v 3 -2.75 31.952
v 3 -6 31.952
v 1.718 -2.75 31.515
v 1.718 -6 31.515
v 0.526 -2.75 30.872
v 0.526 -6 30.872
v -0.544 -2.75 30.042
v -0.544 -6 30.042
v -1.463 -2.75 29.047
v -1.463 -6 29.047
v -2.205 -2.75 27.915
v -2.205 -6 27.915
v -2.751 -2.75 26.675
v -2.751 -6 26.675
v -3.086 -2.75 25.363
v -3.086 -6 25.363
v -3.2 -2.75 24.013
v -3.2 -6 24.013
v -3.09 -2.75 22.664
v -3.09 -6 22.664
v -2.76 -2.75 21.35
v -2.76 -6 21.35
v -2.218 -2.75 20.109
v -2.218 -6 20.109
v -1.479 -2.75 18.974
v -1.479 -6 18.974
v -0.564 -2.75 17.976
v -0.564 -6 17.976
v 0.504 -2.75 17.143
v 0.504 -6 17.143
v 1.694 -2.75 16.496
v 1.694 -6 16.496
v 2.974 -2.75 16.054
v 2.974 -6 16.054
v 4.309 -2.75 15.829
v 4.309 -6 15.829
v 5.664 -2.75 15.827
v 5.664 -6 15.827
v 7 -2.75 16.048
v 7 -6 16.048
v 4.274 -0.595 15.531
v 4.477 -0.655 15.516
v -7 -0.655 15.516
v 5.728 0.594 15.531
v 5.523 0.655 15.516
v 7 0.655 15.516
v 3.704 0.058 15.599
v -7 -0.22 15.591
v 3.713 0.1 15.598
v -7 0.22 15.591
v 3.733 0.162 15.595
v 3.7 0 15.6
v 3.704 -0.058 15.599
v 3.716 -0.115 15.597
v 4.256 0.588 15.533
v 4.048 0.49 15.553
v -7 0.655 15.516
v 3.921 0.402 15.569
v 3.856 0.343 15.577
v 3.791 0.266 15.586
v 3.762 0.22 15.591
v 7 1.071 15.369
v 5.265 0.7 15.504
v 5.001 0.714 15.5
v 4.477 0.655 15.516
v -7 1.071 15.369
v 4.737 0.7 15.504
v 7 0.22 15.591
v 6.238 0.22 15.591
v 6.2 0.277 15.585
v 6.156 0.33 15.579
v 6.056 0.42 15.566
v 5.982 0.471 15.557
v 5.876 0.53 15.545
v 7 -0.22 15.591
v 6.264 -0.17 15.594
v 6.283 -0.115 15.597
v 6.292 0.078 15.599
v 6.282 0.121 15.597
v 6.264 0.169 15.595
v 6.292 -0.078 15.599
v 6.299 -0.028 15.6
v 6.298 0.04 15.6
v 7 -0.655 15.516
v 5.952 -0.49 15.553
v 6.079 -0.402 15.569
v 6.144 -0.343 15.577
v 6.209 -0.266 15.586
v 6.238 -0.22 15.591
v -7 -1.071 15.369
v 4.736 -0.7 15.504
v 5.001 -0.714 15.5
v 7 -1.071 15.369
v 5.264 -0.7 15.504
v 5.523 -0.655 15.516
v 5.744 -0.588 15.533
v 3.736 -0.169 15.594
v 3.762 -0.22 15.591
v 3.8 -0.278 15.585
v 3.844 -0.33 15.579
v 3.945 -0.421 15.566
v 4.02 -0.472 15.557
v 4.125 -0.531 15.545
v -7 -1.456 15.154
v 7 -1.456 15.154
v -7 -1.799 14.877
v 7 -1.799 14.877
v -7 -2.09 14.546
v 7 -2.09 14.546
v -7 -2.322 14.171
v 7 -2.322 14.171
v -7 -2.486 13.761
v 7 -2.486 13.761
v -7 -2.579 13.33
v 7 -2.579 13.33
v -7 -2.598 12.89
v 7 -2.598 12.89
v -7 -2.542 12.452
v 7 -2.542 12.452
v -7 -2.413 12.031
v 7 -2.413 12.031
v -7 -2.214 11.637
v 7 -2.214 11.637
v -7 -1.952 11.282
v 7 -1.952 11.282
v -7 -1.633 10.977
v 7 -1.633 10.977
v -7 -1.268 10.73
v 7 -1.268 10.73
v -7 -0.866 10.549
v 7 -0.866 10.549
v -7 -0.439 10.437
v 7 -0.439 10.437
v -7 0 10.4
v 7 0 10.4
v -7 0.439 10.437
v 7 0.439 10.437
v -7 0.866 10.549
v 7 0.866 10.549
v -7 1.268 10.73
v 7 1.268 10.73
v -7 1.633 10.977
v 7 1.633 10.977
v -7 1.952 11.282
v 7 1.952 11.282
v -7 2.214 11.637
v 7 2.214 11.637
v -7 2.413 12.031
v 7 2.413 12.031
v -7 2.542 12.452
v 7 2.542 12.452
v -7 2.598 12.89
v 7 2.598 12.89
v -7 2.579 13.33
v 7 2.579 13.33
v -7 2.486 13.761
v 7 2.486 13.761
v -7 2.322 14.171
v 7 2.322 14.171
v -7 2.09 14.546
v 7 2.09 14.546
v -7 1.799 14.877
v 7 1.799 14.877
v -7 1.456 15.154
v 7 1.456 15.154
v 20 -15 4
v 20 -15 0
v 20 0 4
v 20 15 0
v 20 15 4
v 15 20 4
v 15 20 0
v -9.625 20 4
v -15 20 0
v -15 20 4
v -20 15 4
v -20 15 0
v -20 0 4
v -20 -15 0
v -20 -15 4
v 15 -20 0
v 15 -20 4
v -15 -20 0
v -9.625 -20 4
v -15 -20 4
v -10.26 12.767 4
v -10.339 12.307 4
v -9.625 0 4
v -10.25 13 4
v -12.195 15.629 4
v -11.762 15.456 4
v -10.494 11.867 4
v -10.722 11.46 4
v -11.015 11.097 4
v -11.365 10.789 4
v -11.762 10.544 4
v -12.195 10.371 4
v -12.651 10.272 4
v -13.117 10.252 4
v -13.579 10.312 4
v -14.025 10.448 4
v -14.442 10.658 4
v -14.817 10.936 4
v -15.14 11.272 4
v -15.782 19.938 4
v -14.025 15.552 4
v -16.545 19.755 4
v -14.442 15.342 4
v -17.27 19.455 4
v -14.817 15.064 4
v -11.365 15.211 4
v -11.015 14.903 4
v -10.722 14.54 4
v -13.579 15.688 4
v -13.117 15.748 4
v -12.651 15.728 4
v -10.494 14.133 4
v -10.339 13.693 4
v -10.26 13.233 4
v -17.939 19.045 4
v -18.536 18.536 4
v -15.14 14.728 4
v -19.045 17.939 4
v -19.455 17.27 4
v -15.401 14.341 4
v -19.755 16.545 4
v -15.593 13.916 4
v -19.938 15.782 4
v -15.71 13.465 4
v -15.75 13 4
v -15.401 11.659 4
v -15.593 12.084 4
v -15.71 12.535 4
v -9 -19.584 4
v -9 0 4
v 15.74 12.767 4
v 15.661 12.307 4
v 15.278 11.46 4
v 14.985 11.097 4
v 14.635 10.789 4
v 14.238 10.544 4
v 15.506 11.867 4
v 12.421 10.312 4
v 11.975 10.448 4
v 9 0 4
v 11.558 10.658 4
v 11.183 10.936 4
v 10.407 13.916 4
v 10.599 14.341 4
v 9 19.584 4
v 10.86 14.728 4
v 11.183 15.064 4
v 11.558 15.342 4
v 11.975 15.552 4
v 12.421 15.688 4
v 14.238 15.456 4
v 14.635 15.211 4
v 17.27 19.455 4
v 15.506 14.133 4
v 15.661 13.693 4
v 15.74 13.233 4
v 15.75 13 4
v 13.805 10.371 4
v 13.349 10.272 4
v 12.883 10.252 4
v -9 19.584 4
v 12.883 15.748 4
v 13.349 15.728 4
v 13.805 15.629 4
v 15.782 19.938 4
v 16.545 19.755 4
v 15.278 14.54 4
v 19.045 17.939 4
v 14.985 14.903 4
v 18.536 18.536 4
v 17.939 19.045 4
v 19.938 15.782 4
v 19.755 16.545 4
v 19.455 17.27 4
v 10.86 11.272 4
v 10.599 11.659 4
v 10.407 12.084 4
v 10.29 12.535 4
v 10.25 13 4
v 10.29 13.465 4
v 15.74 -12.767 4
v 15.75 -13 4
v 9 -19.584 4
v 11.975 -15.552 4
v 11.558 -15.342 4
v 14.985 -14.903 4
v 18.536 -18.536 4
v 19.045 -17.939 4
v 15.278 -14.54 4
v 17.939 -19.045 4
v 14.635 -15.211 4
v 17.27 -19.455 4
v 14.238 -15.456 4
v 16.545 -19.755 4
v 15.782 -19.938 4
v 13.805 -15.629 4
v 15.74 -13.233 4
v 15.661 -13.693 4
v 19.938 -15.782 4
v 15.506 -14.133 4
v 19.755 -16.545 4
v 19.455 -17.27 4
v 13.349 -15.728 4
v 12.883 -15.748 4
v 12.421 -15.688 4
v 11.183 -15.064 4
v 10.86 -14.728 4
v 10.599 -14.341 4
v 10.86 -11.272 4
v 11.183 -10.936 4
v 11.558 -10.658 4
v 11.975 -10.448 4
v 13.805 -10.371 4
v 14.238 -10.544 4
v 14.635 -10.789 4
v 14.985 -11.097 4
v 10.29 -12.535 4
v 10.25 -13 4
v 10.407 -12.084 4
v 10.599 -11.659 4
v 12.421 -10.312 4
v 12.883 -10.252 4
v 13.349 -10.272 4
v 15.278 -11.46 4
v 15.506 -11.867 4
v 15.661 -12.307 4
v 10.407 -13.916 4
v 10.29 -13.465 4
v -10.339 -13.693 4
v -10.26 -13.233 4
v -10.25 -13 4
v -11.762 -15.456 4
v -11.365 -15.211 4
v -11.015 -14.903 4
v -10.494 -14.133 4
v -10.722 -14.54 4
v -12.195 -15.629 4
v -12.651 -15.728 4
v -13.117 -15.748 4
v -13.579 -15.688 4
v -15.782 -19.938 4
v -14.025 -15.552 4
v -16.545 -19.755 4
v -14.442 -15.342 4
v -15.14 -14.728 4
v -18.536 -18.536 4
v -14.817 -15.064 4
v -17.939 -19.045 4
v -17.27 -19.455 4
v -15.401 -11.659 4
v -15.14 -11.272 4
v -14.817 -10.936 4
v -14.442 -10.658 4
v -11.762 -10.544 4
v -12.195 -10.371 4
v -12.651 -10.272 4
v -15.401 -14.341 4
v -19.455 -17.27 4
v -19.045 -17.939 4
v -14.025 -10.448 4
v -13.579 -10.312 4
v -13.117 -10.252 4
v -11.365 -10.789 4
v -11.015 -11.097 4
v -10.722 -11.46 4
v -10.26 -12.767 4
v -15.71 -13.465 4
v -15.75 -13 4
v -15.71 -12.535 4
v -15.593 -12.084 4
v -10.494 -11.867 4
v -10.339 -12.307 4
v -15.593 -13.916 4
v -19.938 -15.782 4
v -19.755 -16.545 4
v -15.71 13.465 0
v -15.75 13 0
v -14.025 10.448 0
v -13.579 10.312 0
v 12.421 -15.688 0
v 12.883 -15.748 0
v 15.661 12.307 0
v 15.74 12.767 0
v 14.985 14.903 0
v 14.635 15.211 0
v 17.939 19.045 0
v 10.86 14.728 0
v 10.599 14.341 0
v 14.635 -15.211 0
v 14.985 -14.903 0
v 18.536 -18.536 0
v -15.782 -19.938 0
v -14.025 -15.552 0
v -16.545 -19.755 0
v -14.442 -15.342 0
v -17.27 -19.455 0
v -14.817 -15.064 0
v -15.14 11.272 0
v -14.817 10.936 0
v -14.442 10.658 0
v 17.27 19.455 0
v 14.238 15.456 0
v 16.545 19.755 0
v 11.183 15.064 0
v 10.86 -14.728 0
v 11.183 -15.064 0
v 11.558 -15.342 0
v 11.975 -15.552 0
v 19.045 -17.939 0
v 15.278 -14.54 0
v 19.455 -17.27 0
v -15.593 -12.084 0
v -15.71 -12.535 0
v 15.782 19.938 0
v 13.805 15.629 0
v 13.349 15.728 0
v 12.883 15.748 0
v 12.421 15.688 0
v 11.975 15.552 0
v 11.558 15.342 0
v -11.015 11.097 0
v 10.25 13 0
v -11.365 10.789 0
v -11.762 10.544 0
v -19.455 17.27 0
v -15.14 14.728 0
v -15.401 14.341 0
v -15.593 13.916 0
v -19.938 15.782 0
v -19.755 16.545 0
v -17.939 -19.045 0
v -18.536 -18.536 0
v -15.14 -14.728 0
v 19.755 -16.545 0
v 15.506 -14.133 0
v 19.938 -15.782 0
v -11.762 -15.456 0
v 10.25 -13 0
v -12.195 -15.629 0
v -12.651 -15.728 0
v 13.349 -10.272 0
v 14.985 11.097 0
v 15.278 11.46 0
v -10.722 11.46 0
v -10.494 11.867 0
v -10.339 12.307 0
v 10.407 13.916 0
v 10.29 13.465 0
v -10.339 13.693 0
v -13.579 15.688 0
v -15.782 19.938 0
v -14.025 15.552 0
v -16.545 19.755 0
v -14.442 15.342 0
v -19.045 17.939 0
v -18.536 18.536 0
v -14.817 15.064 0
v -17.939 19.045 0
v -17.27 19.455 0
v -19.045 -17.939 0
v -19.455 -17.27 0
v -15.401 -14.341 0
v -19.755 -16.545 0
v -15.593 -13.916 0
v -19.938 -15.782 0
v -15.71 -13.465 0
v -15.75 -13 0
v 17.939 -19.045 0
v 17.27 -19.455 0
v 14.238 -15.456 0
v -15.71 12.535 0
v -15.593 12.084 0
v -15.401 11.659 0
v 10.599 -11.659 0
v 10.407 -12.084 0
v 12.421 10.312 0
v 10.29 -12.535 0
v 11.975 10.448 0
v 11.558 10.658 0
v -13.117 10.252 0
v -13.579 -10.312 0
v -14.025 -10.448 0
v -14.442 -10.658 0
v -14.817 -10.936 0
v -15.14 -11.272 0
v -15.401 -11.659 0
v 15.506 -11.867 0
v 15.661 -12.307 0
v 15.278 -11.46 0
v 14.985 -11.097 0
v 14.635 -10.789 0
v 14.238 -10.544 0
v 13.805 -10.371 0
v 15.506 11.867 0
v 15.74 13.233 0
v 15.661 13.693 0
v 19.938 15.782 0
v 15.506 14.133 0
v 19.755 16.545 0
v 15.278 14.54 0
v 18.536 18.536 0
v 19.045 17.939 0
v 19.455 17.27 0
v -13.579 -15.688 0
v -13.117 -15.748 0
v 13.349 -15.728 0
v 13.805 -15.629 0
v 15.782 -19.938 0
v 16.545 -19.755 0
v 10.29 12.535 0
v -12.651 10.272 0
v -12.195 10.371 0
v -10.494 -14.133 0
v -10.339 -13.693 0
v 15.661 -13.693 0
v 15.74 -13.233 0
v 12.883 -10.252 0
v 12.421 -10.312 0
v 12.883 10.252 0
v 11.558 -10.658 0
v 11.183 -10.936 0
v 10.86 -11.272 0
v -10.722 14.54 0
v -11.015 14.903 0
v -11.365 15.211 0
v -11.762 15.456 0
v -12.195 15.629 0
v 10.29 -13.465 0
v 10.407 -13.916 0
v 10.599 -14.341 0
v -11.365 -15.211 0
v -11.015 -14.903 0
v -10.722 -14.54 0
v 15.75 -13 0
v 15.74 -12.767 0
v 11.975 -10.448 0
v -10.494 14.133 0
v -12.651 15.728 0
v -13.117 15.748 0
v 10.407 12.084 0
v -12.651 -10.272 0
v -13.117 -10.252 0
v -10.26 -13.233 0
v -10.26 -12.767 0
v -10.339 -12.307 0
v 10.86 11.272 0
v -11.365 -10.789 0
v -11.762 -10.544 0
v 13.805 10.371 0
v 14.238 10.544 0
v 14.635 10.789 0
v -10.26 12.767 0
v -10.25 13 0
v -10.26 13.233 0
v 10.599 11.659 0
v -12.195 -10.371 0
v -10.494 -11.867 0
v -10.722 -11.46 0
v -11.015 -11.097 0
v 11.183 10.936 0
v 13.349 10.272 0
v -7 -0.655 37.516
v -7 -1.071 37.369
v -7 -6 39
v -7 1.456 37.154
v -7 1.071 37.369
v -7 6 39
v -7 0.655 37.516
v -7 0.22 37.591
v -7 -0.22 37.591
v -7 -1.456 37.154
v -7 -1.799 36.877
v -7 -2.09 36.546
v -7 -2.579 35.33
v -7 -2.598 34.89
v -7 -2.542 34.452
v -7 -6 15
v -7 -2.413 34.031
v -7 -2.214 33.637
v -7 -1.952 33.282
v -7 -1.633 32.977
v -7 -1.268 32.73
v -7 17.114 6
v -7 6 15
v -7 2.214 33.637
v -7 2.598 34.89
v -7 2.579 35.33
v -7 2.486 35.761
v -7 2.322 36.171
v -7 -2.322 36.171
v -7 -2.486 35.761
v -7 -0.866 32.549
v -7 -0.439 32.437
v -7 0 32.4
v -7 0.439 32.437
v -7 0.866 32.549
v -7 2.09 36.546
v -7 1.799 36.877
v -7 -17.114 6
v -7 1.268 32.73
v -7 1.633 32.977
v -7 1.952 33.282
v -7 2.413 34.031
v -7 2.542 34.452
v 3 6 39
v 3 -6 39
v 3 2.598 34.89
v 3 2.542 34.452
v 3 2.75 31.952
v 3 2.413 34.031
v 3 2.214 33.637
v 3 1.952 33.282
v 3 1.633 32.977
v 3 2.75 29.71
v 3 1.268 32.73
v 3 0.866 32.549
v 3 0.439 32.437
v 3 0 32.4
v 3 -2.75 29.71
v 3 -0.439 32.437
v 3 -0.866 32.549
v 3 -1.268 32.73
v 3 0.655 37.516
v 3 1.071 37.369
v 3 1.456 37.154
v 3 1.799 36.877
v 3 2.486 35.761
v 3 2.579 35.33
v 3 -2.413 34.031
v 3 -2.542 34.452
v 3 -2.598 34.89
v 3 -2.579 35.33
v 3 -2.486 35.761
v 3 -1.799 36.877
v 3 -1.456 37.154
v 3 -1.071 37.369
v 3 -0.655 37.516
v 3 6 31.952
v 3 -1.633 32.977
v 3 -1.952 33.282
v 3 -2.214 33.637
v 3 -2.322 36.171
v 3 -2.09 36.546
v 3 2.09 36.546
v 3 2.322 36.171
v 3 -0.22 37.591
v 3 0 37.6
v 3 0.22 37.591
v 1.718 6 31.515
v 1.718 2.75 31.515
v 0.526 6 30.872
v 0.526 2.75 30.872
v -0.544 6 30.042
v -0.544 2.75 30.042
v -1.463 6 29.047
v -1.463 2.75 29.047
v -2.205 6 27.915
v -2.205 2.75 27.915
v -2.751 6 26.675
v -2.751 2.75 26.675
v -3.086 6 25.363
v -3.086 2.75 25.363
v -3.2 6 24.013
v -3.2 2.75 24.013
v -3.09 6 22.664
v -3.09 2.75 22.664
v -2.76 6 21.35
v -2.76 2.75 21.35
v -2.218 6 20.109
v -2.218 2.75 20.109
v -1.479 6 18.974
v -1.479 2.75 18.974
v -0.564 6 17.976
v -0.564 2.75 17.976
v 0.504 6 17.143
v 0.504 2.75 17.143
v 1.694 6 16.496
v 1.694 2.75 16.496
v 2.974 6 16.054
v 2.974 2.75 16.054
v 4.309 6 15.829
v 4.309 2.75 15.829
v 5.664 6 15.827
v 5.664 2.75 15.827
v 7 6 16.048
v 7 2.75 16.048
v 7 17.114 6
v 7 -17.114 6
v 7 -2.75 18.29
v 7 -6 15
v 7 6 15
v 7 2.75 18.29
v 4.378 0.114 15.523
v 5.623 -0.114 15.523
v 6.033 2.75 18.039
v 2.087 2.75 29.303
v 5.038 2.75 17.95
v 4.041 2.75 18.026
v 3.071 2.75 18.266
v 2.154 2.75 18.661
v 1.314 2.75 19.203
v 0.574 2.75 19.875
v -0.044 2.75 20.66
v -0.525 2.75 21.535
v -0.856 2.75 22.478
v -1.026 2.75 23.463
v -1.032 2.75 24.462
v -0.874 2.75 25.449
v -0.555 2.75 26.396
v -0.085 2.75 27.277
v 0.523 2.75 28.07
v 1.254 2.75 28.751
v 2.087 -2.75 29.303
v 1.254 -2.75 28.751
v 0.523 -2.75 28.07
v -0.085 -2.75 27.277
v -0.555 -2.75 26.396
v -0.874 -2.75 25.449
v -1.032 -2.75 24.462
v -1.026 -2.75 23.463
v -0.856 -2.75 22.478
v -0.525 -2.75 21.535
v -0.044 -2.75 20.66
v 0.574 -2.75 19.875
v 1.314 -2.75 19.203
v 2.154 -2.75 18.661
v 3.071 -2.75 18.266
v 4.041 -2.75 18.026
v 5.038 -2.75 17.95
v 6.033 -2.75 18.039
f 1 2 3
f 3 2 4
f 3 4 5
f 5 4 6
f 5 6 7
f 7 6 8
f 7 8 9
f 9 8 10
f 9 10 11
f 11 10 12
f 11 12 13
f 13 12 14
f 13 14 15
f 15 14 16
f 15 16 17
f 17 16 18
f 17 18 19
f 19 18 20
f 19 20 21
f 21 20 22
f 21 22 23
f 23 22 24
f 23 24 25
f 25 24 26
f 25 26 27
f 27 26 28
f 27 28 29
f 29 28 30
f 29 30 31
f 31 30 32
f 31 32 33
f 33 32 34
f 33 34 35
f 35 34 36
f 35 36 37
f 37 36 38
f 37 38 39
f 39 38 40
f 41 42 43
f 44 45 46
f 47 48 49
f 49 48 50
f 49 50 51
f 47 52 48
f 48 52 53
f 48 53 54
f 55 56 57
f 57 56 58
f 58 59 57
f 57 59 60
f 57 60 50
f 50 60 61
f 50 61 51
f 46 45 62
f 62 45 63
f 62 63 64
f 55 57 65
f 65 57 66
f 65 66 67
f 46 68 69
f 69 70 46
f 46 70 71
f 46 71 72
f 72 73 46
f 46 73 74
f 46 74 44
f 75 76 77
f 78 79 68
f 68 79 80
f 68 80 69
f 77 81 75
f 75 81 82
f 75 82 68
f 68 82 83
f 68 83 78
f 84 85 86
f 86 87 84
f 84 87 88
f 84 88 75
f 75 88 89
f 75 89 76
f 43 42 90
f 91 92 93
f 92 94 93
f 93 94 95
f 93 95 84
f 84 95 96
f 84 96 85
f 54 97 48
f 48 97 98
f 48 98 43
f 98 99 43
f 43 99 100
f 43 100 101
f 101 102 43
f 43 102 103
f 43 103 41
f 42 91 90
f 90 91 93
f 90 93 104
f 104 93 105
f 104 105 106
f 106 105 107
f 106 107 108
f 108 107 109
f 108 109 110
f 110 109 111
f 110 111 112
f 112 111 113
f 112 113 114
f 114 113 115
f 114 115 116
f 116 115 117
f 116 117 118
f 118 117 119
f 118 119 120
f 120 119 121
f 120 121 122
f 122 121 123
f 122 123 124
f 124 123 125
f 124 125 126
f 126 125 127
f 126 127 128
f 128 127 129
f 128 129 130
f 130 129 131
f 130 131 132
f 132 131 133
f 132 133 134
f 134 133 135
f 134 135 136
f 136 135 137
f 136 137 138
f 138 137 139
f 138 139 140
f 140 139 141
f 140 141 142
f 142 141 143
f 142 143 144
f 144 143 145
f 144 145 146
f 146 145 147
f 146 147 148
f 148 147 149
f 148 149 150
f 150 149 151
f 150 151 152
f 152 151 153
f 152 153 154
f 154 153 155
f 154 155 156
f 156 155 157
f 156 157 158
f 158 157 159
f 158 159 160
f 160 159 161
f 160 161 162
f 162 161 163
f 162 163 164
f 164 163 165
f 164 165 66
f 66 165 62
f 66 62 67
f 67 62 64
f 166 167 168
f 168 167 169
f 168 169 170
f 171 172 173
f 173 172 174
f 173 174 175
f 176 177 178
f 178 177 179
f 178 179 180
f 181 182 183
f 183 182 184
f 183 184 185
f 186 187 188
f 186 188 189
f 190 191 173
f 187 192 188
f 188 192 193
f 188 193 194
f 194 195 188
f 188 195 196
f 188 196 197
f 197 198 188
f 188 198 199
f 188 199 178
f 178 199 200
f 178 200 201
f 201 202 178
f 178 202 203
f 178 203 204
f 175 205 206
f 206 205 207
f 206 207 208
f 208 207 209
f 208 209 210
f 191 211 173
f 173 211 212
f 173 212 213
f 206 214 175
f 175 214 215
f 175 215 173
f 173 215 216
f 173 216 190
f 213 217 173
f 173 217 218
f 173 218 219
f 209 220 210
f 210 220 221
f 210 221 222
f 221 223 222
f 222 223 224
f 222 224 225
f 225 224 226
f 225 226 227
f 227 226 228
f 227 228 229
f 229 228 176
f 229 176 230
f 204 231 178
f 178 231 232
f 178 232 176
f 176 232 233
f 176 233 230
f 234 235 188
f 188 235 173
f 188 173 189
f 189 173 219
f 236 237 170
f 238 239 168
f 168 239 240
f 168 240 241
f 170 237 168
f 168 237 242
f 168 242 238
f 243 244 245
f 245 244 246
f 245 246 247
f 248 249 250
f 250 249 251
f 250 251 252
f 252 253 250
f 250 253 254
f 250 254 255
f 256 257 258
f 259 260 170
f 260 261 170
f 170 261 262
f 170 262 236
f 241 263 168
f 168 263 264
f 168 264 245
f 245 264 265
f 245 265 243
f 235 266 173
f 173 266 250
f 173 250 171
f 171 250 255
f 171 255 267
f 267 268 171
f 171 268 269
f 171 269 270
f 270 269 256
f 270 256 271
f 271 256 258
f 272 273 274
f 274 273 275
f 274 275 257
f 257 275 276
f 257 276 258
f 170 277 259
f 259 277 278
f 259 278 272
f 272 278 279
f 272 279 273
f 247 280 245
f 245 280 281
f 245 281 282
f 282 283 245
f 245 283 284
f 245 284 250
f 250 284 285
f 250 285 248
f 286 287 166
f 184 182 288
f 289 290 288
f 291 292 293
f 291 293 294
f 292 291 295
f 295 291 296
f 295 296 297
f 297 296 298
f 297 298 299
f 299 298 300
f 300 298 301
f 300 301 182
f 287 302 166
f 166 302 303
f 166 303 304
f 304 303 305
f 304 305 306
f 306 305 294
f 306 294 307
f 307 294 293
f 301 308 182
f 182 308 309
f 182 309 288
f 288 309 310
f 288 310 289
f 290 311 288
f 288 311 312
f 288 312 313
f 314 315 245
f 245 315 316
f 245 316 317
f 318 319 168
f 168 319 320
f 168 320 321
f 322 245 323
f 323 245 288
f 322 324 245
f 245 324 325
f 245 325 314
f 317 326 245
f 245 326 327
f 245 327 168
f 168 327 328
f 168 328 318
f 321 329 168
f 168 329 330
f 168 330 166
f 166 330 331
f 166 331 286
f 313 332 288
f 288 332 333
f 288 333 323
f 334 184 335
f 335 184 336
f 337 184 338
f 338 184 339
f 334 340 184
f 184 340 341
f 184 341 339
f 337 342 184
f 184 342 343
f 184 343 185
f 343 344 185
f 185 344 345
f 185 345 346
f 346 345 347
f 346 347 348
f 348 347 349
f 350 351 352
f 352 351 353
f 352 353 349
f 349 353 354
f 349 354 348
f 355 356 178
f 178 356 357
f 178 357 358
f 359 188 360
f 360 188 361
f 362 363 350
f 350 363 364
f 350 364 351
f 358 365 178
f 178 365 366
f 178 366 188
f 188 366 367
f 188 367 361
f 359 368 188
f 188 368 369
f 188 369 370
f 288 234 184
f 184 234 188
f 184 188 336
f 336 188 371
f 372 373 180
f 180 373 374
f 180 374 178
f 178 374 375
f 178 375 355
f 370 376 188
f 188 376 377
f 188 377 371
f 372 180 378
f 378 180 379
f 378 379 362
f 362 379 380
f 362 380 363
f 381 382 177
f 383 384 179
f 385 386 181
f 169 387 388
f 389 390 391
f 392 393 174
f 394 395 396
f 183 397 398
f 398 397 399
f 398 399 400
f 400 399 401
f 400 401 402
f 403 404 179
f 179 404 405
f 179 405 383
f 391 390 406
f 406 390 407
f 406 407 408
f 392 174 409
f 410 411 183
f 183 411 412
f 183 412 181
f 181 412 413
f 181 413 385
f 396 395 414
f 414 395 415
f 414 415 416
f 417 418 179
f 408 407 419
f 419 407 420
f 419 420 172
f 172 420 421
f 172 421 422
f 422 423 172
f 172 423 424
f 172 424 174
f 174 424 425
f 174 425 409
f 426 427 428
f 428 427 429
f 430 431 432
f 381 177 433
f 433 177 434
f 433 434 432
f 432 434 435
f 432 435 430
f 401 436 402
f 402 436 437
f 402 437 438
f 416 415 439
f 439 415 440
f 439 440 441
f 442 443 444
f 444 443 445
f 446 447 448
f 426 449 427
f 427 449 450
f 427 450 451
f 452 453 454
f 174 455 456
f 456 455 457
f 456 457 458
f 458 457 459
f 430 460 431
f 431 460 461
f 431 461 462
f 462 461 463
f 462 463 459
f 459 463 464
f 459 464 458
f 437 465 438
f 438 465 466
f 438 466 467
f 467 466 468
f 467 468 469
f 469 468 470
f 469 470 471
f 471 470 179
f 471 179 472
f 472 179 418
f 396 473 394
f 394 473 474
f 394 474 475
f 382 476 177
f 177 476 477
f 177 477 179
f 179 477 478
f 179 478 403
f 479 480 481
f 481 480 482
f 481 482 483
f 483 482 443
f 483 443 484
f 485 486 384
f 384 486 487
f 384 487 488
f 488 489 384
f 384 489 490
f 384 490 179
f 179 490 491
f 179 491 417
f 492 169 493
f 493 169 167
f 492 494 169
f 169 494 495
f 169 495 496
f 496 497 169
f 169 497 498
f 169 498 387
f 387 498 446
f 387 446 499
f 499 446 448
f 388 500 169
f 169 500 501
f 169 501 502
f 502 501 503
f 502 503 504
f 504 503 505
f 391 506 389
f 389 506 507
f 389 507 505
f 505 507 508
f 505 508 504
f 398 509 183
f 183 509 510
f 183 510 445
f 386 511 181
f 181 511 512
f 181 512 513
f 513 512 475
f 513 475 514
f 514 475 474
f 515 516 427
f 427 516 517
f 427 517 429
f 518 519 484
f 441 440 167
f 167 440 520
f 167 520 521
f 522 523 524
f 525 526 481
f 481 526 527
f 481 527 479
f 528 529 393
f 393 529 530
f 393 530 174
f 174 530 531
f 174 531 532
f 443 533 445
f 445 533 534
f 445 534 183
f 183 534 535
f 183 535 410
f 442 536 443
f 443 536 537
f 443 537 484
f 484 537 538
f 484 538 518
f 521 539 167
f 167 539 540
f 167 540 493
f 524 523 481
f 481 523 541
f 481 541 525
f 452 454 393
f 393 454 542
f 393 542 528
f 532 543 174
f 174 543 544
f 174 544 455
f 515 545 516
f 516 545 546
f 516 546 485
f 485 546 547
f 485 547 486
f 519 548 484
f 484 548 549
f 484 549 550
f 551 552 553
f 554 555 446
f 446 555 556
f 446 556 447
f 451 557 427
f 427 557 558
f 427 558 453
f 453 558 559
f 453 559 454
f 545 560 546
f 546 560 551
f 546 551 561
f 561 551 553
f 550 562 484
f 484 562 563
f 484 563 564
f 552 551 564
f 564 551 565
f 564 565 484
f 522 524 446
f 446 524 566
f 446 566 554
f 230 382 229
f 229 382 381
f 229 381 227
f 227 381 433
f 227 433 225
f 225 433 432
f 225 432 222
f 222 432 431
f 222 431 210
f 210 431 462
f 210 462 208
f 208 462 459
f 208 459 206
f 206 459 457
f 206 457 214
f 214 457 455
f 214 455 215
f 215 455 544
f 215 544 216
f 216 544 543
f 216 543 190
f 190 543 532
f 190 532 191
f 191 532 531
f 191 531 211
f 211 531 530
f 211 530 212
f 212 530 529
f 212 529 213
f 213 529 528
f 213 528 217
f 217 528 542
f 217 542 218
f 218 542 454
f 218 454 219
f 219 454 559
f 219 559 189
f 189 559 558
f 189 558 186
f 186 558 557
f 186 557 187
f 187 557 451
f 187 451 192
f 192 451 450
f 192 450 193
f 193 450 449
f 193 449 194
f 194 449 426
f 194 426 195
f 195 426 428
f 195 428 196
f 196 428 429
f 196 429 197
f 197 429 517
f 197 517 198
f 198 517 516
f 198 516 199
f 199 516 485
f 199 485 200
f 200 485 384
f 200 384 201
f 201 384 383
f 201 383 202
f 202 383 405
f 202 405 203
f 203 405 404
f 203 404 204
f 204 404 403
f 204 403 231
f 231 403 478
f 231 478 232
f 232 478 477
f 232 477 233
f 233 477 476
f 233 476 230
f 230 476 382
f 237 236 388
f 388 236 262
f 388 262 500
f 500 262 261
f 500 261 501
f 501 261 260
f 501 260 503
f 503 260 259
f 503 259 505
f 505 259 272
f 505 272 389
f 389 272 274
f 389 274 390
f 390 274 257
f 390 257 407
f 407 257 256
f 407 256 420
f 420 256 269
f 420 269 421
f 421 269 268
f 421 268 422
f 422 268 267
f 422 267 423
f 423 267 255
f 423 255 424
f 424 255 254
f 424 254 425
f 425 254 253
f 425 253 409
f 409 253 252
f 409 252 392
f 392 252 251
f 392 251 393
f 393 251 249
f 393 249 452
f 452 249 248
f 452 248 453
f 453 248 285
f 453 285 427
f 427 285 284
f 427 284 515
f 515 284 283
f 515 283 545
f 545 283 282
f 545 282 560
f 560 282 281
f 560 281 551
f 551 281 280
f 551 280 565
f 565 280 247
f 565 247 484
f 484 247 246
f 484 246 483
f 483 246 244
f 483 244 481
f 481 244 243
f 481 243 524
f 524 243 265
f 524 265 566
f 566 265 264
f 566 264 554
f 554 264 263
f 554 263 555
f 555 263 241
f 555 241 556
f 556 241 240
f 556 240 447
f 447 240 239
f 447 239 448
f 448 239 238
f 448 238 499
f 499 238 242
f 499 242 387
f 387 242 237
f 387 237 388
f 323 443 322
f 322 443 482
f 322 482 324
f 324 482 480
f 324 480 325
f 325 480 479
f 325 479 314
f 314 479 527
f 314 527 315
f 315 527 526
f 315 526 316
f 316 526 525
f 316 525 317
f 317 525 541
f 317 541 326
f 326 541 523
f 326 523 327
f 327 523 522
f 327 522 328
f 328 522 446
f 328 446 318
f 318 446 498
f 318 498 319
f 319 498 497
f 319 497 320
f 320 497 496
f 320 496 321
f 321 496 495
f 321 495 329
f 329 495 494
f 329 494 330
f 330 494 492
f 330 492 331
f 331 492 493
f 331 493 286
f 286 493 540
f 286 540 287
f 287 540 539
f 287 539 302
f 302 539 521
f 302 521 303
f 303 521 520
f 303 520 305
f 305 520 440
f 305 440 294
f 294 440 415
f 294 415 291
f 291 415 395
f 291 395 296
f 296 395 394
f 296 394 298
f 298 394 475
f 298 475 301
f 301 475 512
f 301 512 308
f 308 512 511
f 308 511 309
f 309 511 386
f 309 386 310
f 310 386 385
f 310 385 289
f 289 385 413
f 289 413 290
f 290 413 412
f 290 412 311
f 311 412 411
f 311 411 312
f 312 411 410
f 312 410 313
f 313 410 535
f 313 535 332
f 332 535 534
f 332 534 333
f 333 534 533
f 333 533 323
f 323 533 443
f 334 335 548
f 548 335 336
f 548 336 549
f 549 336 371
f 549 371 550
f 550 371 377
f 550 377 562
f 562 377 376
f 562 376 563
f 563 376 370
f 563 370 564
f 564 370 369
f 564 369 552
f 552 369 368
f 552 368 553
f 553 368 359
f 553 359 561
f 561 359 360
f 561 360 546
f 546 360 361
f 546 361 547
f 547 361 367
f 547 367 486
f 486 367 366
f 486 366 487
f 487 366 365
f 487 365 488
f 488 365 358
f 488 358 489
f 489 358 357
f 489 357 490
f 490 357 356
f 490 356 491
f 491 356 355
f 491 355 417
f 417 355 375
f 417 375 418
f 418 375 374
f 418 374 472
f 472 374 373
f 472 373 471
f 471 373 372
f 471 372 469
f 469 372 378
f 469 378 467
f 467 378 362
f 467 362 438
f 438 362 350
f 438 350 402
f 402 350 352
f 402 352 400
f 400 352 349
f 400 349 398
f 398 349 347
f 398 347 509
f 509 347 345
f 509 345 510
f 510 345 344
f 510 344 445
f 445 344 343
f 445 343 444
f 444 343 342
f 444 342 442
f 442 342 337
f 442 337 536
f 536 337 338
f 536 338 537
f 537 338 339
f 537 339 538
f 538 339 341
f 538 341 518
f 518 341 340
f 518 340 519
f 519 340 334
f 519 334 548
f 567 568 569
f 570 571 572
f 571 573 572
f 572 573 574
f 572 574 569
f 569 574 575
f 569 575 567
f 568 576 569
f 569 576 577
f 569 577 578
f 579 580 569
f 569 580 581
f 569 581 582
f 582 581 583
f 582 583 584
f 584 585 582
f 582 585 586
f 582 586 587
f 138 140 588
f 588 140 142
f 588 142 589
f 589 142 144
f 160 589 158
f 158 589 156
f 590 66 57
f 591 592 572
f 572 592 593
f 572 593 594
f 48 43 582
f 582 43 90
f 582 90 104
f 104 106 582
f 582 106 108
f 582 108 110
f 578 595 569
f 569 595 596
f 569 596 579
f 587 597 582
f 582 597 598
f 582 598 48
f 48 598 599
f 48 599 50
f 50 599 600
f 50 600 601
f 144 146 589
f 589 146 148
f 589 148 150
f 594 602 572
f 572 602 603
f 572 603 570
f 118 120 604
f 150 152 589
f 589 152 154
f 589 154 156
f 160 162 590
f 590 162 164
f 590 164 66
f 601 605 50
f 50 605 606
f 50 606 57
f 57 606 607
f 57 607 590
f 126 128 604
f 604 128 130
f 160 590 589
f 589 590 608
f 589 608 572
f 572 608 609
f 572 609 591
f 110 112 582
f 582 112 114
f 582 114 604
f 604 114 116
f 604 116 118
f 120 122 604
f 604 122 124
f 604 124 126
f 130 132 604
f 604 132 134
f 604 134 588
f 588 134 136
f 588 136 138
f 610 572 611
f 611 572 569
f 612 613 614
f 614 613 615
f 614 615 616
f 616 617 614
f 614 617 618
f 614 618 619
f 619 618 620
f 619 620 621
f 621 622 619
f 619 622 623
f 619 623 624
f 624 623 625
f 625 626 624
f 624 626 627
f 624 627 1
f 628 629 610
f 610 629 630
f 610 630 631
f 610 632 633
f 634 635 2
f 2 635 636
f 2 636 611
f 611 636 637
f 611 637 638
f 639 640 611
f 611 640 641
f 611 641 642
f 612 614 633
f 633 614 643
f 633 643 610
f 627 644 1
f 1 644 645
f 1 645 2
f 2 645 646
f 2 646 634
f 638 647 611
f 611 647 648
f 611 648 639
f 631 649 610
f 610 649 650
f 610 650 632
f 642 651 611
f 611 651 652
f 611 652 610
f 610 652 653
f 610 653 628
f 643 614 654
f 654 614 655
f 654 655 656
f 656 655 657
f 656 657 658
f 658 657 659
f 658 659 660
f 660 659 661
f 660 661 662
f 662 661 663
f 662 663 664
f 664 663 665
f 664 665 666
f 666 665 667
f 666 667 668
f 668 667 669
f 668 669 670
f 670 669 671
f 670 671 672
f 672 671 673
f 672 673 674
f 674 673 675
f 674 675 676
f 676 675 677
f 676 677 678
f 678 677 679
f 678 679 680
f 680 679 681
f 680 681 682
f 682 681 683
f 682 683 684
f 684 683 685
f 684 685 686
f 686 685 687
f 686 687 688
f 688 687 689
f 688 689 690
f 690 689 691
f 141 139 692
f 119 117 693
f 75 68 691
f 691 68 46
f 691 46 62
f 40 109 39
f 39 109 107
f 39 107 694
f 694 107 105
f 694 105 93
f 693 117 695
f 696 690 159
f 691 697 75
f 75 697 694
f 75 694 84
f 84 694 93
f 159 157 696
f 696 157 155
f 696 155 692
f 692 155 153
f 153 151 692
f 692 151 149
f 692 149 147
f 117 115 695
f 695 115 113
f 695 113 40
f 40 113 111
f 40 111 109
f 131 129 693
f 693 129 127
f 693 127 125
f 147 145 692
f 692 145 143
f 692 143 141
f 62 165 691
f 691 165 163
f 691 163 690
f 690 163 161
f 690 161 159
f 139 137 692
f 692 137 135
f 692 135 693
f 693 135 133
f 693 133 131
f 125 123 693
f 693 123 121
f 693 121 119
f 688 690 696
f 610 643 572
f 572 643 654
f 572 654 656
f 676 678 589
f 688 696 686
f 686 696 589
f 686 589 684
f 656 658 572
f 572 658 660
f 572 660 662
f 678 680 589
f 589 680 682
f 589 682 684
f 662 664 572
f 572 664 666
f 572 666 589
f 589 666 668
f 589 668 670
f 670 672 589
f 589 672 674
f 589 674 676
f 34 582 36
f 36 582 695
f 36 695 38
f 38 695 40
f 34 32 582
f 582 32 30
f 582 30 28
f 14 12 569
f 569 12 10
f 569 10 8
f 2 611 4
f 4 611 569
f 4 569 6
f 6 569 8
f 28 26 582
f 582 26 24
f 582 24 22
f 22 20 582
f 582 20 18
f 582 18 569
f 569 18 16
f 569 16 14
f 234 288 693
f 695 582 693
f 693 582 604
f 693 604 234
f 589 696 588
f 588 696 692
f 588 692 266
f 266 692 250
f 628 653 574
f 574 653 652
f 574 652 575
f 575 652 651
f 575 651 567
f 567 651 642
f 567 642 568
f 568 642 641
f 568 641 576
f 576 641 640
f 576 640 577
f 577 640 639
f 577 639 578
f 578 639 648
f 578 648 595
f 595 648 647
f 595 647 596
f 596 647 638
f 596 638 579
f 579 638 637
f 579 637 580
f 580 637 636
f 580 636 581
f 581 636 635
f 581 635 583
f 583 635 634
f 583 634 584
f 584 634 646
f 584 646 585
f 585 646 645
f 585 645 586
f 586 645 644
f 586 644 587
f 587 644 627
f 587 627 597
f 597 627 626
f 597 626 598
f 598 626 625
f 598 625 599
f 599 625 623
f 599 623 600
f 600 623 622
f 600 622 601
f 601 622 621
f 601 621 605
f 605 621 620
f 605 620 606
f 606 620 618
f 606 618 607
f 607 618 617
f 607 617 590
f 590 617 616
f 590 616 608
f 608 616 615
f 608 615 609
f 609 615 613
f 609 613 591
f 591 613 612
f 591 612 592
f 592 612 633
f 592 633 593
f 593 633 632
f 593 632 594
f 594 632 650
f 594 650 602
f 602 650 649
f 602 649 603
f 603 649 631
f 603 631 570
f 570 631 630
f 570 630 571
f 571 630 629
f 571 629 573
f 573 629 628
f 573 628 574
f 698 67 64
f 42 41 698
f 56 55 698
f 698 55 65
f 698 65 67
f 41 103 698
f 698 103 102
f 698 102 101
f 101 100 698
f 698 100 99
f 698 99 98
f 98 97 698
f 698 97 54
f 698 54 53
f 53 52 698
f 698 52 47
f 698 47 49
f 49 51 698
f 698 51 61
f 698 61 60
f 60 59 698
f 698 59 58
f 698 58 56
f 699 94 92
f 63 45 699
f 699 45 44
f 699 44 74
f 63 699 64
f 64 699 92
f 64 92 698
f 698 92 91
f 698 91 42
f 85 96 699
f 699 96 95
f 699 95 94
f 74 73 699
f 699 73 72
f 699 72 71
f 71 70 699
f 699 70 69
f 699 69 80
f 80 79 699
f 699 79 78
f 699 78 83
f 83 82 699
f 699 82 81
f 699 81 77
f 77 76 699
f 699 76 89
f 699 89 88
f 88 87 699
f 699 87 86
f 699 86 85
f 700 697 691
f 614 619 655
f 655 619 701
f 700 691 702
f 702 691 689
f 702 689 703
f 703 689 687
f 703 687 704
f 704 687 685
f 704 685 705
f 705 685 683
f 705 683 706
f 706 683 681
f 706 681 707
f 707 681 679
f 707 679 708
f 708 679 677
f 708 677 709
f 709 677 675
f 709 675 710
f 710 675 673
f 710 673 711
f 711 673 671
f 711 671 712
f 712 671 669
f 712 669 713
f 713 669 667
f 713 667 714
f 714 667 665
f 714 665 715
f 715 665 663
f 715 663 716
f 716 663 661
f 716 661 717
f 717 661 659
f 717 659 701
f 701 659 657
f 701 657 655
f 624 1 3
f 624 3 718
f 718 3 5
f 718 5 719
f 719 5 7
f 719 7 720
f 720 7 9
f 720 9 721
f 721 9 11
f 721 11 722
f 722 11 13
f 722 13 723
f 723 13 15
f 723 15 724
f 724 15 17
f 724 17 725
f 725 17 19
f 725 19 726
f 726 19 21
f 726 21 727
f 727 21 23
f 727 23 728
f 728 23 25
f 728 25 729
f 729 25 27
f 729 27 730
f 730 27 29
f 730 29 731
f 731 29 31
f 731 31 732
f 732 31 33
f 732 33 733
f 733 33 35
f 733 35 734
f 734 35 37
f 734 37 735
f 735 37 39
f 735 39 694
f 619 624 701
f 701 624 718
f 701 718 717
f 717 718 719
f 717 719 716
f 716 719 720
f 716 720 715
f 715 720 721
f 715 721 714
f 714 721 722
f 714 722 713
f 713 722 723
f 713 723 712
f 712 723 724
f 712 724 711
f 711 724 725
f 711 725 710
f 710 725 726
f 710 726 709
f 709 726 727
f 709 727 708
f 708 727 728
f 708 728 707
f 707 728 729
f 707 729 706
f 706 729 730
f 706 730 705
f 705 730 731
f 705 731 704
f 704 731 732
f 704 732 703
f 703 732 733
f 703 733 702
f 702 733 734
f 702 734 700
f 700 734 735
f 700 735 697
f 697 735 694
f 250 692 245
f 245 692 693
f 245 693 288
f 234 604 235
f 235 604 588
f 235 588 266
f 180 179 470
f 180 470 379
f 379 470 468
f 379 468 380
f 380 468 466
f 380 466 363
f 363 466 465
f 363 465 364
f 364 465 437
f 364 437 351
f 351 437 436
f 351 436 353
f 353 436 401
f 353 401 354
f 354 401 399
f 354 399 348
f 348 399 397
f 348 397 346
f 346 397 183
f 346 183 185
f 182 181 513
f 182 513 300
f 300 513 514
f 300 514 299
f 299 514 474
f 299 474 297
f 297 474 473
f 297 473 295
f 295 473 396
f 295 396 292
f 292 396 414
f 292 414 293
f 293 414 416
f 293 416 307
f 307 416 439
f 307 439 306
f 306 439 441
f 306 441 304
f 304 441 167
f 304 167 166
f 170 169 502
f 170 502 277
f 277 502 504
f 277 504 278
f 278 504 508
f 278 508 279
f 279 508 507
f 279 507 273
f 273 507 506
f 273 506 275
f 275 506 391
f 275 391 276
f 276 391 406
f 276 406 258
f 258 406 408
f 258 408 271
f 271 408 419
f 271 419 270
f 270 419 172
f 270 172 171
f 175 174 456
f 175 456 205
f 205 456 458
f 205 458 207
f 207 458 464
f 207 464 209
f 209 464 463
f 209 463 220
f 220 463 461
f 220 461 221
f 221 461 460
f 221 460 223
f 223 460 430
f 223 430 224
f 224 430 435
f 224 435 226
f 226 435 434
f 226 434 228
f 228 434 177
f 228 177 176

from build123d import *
from OCP.BRepFilletAPI import BRepFilletAPI_MakeChamfer

# Parameters (mm, degrees)
SKETCH1_W           = 40
SKETCH1_H           = 40
BOSS_EXTRUDE1_DEPTH = 4
CUT_EXTRUDE1_REACH  = 30.566
SKETCH2_R           = 2.75
BOSS_EXTRUDE2_DEPTH = 6
CHAMFER1_SIZE       = 11
CHAMFER1_SIZE2      = 13.583868722
SKETCH4_R           = 2.6
CUT_EXTRUDE2_DEPTH  = 7
BOSS_EXTRUDE3_DEPTH = 2.75
CHAMFER2_SIZE       = 2
FILLET1_R           = 5


with BuildPart() as part:
    # Sketch1 → Boss-Extrude1 (new body)
    with BuildSketch(Plane.XY):
        Rectangle(SKETCH1_W, SKETCH1_H)
    extrude(amount=BOSS_EXTRUDE1_DEPTH)

    # Sketch2 → Cut-Extrude1 (cut, up to next)
    with BuildSketch(Plane.XY, mode=Mode.PRIVATE) as cut_extrude1_sk1:
        with Locations((-13, 13)):
            Circle(SKETCH2_R)
    cut_extrude1_tool1 = extrude(cut_extrude1_sk1.sketch, amount=CUT_EXTRUDE1_REACH, mode=Mode.PRIVATE) & part.part
    # Sketch2 → Cut-Extrude1 (cut, up to next)
    with BuildSketch(Plane.XY, mode=Mode.PRIVATE) as cut_extrude1_sk2:
        with Locations(Location((13, 13, 0), (0, 0, 180))):
            Circle(SKETCH2_R)
    cut_extrude1_tool2 = extrude(cut_extrude1_sk2.sketch, amount=CUT_EXTRUDE1_REACH, mode=Mode.PRIVATE) & part.part
    # Sketch2 → Cut-Extrude1 (cut, up to next)
    with BuildSketch(Plane.XY, mode=Mode.PRIVATE) as cut_extrude1_sk3:
        with Locations((13, -13)):
            Circle(SKETCH2_R)
    cut_extrude1_tool3 = extrude(cut_extrude1_sk3.sketch, amount=CUT_EXTRUDE1_REACH, mode=Mode.PRIVATE) & part.part
    # Sketch2 → Cut-Extrude1 (cut, up to next)
    with BuildSketch(Plane.XY, mode=Mode.PRIVATE) as cut_extrude1_sk4:
        with Locations(Location((-13, -13, 0), (0, 0, 180))):
            Circle(SKETCH2_R)
    cut_extrude1_tool4 = extrude(cut_extrude1_sk4.sketch, amount=CUT_EXTRUDE1_REACH, mode=Mode.PRIVATE) & part.part
    add(cut_extrude1_tool1.solids().sort_by_distance((-13, 13, 0))[0], mode=Mode.SUBTRACT)
    add(cut_extrude1_tool2.solids().sort_by_distance((13, 13, 0))[0], mode=Mode.SUBTRACT)
    add(cut_extrude1_tool3.solids().sort_by_distance((13, -13, 0))[0], mode=Mode.SUBTRACT)
    add(cut_extrude1_tool4.solids().sort_by_distance((-13, -13, 0))[0], mode=Mode.SUBTRACT)

    # Sketch3 → Boss-Extrude2 (add, symmetric)
    with BuildSketch(Plane(origin=(0, 0, 0), x_dir=(1, 0, 0), z_dir=(0, 1, 0))):
        with BuildLine():
            Line((-7, -4), (-7, -39))
            Line((-7, -39), (3, -39))
            Line((3, -39), (3, -31.952358141))
            ThreePointArc((3, -31.952358141), (-2.952358141, -22), (7, -16.047641859))
            Line((7, -16.047641859), (7, -4))
            Line((7, -4), (-7, -4))
        make_face()
    extrude(amount=BOSS_EXTRUDE2_DEPTH, both=True)

    # Chamfer1: one chamfer whose edges measure the first distance from different faces: ONE call of the kernel's chamfer builder (chamfer() names one face for all edges)
    chamfer1_edges_1 = [part.edges().sort_by_distance(p)[0] for p in [
        (0, -6, 4),
    ]]
    chamfer1_side_1 = [part.faces().sort_by_distance(p)[0] for p in [
        (6.623038464, -6, 10.02382093),
    ]]
    chamfer1_edges_2 = [part.edges().sort_by_distance(p)[0] for p in [
        (0, 6, 4),
    ]]
    chamfer1_side_2 = [part.faces().sort_by_distance(p)[0] for p in [
        (6.623038464, 6, 10.02382093),
    ]]
    chamfer1 = BRepFilletAPI_MakeChamfer(part.part.solid().wrapped)
    for e in chamfer1_edges_1:
        chamfer1.Add(CHAMFER1_SIZE, CHAMFER1_SIZE2, e.wrapped, chamfer1_side_1[0].wrapped)  # the first distance lies on this face
    for e in chamfer1_edges_2:
        chamfer1.Add(CHAMFER1_SIZE, CHAMFER1_SIZE2, e.wrapped, chamfer1_side_2[0].wrapped)  # the first distance lies on this face
    add(Compound.cast(chamfer1.Shape()), mode=Mode.REPLACE)

    # Sketch4 → Cut-Extrude2 (cut, symmetric)
    with BuildSketch(Plane(origin=(0, 0, 0), x_dir=(0, 0, -1), z_dir=(1, 0, 0))):
        with Locations((-13, 0)):
            Circle(SKETCH4_R)
        with Locations((-35, 0)):
            Circle(SKETCH4_R)
    extrude(amount=CUT_EXTRUDE2_DEPTH, both=True, mode=Mode.SUBTRACT)

    # Sketch5 → Boss-Extrude3 (add, symmetric)
    with BuildSketch(Plane(origin=(0, 0, 0), x_dir=(1, 0, 0), z_dir=(0, 1, 0))):
        with BuildLine():
            Line((7, -15.738644179), (7, -18.290140107))
            ThreePointArc((7, -18.290140107), (-0.709859893, -22), (3, -29.709859893))
            Line((3, -29.709859893), (3, -32.261355821))
            ThreePointArc((3, -32.261355821), (-3.261355821, -22), (7, -15.738644179))
        make_face()
    extrude(amount=BOSS_EXTRUDE3_DEPTH, both=True)

    # Chamfer2
    chamfer2_edges = [part.edges().sort_by_distance(p)[0] for p in [
        (7, 0, 4),
        (-7, 0, 4),
    ]]
    chamfer(chamfer2_edges, length=CHAMFER2_SIZE)

    # Fillet1
    fillet1_edges = [part.edges().sort_by_distance(p)[0] for p in [
        (20, -20, 2),
        (-20, -20, 2),
        (-20, 20, 2),
        (20, 20, 2),
    ]]
    fillet(fillet1_edges, radius=FILLET1_R)


solid = part.part
